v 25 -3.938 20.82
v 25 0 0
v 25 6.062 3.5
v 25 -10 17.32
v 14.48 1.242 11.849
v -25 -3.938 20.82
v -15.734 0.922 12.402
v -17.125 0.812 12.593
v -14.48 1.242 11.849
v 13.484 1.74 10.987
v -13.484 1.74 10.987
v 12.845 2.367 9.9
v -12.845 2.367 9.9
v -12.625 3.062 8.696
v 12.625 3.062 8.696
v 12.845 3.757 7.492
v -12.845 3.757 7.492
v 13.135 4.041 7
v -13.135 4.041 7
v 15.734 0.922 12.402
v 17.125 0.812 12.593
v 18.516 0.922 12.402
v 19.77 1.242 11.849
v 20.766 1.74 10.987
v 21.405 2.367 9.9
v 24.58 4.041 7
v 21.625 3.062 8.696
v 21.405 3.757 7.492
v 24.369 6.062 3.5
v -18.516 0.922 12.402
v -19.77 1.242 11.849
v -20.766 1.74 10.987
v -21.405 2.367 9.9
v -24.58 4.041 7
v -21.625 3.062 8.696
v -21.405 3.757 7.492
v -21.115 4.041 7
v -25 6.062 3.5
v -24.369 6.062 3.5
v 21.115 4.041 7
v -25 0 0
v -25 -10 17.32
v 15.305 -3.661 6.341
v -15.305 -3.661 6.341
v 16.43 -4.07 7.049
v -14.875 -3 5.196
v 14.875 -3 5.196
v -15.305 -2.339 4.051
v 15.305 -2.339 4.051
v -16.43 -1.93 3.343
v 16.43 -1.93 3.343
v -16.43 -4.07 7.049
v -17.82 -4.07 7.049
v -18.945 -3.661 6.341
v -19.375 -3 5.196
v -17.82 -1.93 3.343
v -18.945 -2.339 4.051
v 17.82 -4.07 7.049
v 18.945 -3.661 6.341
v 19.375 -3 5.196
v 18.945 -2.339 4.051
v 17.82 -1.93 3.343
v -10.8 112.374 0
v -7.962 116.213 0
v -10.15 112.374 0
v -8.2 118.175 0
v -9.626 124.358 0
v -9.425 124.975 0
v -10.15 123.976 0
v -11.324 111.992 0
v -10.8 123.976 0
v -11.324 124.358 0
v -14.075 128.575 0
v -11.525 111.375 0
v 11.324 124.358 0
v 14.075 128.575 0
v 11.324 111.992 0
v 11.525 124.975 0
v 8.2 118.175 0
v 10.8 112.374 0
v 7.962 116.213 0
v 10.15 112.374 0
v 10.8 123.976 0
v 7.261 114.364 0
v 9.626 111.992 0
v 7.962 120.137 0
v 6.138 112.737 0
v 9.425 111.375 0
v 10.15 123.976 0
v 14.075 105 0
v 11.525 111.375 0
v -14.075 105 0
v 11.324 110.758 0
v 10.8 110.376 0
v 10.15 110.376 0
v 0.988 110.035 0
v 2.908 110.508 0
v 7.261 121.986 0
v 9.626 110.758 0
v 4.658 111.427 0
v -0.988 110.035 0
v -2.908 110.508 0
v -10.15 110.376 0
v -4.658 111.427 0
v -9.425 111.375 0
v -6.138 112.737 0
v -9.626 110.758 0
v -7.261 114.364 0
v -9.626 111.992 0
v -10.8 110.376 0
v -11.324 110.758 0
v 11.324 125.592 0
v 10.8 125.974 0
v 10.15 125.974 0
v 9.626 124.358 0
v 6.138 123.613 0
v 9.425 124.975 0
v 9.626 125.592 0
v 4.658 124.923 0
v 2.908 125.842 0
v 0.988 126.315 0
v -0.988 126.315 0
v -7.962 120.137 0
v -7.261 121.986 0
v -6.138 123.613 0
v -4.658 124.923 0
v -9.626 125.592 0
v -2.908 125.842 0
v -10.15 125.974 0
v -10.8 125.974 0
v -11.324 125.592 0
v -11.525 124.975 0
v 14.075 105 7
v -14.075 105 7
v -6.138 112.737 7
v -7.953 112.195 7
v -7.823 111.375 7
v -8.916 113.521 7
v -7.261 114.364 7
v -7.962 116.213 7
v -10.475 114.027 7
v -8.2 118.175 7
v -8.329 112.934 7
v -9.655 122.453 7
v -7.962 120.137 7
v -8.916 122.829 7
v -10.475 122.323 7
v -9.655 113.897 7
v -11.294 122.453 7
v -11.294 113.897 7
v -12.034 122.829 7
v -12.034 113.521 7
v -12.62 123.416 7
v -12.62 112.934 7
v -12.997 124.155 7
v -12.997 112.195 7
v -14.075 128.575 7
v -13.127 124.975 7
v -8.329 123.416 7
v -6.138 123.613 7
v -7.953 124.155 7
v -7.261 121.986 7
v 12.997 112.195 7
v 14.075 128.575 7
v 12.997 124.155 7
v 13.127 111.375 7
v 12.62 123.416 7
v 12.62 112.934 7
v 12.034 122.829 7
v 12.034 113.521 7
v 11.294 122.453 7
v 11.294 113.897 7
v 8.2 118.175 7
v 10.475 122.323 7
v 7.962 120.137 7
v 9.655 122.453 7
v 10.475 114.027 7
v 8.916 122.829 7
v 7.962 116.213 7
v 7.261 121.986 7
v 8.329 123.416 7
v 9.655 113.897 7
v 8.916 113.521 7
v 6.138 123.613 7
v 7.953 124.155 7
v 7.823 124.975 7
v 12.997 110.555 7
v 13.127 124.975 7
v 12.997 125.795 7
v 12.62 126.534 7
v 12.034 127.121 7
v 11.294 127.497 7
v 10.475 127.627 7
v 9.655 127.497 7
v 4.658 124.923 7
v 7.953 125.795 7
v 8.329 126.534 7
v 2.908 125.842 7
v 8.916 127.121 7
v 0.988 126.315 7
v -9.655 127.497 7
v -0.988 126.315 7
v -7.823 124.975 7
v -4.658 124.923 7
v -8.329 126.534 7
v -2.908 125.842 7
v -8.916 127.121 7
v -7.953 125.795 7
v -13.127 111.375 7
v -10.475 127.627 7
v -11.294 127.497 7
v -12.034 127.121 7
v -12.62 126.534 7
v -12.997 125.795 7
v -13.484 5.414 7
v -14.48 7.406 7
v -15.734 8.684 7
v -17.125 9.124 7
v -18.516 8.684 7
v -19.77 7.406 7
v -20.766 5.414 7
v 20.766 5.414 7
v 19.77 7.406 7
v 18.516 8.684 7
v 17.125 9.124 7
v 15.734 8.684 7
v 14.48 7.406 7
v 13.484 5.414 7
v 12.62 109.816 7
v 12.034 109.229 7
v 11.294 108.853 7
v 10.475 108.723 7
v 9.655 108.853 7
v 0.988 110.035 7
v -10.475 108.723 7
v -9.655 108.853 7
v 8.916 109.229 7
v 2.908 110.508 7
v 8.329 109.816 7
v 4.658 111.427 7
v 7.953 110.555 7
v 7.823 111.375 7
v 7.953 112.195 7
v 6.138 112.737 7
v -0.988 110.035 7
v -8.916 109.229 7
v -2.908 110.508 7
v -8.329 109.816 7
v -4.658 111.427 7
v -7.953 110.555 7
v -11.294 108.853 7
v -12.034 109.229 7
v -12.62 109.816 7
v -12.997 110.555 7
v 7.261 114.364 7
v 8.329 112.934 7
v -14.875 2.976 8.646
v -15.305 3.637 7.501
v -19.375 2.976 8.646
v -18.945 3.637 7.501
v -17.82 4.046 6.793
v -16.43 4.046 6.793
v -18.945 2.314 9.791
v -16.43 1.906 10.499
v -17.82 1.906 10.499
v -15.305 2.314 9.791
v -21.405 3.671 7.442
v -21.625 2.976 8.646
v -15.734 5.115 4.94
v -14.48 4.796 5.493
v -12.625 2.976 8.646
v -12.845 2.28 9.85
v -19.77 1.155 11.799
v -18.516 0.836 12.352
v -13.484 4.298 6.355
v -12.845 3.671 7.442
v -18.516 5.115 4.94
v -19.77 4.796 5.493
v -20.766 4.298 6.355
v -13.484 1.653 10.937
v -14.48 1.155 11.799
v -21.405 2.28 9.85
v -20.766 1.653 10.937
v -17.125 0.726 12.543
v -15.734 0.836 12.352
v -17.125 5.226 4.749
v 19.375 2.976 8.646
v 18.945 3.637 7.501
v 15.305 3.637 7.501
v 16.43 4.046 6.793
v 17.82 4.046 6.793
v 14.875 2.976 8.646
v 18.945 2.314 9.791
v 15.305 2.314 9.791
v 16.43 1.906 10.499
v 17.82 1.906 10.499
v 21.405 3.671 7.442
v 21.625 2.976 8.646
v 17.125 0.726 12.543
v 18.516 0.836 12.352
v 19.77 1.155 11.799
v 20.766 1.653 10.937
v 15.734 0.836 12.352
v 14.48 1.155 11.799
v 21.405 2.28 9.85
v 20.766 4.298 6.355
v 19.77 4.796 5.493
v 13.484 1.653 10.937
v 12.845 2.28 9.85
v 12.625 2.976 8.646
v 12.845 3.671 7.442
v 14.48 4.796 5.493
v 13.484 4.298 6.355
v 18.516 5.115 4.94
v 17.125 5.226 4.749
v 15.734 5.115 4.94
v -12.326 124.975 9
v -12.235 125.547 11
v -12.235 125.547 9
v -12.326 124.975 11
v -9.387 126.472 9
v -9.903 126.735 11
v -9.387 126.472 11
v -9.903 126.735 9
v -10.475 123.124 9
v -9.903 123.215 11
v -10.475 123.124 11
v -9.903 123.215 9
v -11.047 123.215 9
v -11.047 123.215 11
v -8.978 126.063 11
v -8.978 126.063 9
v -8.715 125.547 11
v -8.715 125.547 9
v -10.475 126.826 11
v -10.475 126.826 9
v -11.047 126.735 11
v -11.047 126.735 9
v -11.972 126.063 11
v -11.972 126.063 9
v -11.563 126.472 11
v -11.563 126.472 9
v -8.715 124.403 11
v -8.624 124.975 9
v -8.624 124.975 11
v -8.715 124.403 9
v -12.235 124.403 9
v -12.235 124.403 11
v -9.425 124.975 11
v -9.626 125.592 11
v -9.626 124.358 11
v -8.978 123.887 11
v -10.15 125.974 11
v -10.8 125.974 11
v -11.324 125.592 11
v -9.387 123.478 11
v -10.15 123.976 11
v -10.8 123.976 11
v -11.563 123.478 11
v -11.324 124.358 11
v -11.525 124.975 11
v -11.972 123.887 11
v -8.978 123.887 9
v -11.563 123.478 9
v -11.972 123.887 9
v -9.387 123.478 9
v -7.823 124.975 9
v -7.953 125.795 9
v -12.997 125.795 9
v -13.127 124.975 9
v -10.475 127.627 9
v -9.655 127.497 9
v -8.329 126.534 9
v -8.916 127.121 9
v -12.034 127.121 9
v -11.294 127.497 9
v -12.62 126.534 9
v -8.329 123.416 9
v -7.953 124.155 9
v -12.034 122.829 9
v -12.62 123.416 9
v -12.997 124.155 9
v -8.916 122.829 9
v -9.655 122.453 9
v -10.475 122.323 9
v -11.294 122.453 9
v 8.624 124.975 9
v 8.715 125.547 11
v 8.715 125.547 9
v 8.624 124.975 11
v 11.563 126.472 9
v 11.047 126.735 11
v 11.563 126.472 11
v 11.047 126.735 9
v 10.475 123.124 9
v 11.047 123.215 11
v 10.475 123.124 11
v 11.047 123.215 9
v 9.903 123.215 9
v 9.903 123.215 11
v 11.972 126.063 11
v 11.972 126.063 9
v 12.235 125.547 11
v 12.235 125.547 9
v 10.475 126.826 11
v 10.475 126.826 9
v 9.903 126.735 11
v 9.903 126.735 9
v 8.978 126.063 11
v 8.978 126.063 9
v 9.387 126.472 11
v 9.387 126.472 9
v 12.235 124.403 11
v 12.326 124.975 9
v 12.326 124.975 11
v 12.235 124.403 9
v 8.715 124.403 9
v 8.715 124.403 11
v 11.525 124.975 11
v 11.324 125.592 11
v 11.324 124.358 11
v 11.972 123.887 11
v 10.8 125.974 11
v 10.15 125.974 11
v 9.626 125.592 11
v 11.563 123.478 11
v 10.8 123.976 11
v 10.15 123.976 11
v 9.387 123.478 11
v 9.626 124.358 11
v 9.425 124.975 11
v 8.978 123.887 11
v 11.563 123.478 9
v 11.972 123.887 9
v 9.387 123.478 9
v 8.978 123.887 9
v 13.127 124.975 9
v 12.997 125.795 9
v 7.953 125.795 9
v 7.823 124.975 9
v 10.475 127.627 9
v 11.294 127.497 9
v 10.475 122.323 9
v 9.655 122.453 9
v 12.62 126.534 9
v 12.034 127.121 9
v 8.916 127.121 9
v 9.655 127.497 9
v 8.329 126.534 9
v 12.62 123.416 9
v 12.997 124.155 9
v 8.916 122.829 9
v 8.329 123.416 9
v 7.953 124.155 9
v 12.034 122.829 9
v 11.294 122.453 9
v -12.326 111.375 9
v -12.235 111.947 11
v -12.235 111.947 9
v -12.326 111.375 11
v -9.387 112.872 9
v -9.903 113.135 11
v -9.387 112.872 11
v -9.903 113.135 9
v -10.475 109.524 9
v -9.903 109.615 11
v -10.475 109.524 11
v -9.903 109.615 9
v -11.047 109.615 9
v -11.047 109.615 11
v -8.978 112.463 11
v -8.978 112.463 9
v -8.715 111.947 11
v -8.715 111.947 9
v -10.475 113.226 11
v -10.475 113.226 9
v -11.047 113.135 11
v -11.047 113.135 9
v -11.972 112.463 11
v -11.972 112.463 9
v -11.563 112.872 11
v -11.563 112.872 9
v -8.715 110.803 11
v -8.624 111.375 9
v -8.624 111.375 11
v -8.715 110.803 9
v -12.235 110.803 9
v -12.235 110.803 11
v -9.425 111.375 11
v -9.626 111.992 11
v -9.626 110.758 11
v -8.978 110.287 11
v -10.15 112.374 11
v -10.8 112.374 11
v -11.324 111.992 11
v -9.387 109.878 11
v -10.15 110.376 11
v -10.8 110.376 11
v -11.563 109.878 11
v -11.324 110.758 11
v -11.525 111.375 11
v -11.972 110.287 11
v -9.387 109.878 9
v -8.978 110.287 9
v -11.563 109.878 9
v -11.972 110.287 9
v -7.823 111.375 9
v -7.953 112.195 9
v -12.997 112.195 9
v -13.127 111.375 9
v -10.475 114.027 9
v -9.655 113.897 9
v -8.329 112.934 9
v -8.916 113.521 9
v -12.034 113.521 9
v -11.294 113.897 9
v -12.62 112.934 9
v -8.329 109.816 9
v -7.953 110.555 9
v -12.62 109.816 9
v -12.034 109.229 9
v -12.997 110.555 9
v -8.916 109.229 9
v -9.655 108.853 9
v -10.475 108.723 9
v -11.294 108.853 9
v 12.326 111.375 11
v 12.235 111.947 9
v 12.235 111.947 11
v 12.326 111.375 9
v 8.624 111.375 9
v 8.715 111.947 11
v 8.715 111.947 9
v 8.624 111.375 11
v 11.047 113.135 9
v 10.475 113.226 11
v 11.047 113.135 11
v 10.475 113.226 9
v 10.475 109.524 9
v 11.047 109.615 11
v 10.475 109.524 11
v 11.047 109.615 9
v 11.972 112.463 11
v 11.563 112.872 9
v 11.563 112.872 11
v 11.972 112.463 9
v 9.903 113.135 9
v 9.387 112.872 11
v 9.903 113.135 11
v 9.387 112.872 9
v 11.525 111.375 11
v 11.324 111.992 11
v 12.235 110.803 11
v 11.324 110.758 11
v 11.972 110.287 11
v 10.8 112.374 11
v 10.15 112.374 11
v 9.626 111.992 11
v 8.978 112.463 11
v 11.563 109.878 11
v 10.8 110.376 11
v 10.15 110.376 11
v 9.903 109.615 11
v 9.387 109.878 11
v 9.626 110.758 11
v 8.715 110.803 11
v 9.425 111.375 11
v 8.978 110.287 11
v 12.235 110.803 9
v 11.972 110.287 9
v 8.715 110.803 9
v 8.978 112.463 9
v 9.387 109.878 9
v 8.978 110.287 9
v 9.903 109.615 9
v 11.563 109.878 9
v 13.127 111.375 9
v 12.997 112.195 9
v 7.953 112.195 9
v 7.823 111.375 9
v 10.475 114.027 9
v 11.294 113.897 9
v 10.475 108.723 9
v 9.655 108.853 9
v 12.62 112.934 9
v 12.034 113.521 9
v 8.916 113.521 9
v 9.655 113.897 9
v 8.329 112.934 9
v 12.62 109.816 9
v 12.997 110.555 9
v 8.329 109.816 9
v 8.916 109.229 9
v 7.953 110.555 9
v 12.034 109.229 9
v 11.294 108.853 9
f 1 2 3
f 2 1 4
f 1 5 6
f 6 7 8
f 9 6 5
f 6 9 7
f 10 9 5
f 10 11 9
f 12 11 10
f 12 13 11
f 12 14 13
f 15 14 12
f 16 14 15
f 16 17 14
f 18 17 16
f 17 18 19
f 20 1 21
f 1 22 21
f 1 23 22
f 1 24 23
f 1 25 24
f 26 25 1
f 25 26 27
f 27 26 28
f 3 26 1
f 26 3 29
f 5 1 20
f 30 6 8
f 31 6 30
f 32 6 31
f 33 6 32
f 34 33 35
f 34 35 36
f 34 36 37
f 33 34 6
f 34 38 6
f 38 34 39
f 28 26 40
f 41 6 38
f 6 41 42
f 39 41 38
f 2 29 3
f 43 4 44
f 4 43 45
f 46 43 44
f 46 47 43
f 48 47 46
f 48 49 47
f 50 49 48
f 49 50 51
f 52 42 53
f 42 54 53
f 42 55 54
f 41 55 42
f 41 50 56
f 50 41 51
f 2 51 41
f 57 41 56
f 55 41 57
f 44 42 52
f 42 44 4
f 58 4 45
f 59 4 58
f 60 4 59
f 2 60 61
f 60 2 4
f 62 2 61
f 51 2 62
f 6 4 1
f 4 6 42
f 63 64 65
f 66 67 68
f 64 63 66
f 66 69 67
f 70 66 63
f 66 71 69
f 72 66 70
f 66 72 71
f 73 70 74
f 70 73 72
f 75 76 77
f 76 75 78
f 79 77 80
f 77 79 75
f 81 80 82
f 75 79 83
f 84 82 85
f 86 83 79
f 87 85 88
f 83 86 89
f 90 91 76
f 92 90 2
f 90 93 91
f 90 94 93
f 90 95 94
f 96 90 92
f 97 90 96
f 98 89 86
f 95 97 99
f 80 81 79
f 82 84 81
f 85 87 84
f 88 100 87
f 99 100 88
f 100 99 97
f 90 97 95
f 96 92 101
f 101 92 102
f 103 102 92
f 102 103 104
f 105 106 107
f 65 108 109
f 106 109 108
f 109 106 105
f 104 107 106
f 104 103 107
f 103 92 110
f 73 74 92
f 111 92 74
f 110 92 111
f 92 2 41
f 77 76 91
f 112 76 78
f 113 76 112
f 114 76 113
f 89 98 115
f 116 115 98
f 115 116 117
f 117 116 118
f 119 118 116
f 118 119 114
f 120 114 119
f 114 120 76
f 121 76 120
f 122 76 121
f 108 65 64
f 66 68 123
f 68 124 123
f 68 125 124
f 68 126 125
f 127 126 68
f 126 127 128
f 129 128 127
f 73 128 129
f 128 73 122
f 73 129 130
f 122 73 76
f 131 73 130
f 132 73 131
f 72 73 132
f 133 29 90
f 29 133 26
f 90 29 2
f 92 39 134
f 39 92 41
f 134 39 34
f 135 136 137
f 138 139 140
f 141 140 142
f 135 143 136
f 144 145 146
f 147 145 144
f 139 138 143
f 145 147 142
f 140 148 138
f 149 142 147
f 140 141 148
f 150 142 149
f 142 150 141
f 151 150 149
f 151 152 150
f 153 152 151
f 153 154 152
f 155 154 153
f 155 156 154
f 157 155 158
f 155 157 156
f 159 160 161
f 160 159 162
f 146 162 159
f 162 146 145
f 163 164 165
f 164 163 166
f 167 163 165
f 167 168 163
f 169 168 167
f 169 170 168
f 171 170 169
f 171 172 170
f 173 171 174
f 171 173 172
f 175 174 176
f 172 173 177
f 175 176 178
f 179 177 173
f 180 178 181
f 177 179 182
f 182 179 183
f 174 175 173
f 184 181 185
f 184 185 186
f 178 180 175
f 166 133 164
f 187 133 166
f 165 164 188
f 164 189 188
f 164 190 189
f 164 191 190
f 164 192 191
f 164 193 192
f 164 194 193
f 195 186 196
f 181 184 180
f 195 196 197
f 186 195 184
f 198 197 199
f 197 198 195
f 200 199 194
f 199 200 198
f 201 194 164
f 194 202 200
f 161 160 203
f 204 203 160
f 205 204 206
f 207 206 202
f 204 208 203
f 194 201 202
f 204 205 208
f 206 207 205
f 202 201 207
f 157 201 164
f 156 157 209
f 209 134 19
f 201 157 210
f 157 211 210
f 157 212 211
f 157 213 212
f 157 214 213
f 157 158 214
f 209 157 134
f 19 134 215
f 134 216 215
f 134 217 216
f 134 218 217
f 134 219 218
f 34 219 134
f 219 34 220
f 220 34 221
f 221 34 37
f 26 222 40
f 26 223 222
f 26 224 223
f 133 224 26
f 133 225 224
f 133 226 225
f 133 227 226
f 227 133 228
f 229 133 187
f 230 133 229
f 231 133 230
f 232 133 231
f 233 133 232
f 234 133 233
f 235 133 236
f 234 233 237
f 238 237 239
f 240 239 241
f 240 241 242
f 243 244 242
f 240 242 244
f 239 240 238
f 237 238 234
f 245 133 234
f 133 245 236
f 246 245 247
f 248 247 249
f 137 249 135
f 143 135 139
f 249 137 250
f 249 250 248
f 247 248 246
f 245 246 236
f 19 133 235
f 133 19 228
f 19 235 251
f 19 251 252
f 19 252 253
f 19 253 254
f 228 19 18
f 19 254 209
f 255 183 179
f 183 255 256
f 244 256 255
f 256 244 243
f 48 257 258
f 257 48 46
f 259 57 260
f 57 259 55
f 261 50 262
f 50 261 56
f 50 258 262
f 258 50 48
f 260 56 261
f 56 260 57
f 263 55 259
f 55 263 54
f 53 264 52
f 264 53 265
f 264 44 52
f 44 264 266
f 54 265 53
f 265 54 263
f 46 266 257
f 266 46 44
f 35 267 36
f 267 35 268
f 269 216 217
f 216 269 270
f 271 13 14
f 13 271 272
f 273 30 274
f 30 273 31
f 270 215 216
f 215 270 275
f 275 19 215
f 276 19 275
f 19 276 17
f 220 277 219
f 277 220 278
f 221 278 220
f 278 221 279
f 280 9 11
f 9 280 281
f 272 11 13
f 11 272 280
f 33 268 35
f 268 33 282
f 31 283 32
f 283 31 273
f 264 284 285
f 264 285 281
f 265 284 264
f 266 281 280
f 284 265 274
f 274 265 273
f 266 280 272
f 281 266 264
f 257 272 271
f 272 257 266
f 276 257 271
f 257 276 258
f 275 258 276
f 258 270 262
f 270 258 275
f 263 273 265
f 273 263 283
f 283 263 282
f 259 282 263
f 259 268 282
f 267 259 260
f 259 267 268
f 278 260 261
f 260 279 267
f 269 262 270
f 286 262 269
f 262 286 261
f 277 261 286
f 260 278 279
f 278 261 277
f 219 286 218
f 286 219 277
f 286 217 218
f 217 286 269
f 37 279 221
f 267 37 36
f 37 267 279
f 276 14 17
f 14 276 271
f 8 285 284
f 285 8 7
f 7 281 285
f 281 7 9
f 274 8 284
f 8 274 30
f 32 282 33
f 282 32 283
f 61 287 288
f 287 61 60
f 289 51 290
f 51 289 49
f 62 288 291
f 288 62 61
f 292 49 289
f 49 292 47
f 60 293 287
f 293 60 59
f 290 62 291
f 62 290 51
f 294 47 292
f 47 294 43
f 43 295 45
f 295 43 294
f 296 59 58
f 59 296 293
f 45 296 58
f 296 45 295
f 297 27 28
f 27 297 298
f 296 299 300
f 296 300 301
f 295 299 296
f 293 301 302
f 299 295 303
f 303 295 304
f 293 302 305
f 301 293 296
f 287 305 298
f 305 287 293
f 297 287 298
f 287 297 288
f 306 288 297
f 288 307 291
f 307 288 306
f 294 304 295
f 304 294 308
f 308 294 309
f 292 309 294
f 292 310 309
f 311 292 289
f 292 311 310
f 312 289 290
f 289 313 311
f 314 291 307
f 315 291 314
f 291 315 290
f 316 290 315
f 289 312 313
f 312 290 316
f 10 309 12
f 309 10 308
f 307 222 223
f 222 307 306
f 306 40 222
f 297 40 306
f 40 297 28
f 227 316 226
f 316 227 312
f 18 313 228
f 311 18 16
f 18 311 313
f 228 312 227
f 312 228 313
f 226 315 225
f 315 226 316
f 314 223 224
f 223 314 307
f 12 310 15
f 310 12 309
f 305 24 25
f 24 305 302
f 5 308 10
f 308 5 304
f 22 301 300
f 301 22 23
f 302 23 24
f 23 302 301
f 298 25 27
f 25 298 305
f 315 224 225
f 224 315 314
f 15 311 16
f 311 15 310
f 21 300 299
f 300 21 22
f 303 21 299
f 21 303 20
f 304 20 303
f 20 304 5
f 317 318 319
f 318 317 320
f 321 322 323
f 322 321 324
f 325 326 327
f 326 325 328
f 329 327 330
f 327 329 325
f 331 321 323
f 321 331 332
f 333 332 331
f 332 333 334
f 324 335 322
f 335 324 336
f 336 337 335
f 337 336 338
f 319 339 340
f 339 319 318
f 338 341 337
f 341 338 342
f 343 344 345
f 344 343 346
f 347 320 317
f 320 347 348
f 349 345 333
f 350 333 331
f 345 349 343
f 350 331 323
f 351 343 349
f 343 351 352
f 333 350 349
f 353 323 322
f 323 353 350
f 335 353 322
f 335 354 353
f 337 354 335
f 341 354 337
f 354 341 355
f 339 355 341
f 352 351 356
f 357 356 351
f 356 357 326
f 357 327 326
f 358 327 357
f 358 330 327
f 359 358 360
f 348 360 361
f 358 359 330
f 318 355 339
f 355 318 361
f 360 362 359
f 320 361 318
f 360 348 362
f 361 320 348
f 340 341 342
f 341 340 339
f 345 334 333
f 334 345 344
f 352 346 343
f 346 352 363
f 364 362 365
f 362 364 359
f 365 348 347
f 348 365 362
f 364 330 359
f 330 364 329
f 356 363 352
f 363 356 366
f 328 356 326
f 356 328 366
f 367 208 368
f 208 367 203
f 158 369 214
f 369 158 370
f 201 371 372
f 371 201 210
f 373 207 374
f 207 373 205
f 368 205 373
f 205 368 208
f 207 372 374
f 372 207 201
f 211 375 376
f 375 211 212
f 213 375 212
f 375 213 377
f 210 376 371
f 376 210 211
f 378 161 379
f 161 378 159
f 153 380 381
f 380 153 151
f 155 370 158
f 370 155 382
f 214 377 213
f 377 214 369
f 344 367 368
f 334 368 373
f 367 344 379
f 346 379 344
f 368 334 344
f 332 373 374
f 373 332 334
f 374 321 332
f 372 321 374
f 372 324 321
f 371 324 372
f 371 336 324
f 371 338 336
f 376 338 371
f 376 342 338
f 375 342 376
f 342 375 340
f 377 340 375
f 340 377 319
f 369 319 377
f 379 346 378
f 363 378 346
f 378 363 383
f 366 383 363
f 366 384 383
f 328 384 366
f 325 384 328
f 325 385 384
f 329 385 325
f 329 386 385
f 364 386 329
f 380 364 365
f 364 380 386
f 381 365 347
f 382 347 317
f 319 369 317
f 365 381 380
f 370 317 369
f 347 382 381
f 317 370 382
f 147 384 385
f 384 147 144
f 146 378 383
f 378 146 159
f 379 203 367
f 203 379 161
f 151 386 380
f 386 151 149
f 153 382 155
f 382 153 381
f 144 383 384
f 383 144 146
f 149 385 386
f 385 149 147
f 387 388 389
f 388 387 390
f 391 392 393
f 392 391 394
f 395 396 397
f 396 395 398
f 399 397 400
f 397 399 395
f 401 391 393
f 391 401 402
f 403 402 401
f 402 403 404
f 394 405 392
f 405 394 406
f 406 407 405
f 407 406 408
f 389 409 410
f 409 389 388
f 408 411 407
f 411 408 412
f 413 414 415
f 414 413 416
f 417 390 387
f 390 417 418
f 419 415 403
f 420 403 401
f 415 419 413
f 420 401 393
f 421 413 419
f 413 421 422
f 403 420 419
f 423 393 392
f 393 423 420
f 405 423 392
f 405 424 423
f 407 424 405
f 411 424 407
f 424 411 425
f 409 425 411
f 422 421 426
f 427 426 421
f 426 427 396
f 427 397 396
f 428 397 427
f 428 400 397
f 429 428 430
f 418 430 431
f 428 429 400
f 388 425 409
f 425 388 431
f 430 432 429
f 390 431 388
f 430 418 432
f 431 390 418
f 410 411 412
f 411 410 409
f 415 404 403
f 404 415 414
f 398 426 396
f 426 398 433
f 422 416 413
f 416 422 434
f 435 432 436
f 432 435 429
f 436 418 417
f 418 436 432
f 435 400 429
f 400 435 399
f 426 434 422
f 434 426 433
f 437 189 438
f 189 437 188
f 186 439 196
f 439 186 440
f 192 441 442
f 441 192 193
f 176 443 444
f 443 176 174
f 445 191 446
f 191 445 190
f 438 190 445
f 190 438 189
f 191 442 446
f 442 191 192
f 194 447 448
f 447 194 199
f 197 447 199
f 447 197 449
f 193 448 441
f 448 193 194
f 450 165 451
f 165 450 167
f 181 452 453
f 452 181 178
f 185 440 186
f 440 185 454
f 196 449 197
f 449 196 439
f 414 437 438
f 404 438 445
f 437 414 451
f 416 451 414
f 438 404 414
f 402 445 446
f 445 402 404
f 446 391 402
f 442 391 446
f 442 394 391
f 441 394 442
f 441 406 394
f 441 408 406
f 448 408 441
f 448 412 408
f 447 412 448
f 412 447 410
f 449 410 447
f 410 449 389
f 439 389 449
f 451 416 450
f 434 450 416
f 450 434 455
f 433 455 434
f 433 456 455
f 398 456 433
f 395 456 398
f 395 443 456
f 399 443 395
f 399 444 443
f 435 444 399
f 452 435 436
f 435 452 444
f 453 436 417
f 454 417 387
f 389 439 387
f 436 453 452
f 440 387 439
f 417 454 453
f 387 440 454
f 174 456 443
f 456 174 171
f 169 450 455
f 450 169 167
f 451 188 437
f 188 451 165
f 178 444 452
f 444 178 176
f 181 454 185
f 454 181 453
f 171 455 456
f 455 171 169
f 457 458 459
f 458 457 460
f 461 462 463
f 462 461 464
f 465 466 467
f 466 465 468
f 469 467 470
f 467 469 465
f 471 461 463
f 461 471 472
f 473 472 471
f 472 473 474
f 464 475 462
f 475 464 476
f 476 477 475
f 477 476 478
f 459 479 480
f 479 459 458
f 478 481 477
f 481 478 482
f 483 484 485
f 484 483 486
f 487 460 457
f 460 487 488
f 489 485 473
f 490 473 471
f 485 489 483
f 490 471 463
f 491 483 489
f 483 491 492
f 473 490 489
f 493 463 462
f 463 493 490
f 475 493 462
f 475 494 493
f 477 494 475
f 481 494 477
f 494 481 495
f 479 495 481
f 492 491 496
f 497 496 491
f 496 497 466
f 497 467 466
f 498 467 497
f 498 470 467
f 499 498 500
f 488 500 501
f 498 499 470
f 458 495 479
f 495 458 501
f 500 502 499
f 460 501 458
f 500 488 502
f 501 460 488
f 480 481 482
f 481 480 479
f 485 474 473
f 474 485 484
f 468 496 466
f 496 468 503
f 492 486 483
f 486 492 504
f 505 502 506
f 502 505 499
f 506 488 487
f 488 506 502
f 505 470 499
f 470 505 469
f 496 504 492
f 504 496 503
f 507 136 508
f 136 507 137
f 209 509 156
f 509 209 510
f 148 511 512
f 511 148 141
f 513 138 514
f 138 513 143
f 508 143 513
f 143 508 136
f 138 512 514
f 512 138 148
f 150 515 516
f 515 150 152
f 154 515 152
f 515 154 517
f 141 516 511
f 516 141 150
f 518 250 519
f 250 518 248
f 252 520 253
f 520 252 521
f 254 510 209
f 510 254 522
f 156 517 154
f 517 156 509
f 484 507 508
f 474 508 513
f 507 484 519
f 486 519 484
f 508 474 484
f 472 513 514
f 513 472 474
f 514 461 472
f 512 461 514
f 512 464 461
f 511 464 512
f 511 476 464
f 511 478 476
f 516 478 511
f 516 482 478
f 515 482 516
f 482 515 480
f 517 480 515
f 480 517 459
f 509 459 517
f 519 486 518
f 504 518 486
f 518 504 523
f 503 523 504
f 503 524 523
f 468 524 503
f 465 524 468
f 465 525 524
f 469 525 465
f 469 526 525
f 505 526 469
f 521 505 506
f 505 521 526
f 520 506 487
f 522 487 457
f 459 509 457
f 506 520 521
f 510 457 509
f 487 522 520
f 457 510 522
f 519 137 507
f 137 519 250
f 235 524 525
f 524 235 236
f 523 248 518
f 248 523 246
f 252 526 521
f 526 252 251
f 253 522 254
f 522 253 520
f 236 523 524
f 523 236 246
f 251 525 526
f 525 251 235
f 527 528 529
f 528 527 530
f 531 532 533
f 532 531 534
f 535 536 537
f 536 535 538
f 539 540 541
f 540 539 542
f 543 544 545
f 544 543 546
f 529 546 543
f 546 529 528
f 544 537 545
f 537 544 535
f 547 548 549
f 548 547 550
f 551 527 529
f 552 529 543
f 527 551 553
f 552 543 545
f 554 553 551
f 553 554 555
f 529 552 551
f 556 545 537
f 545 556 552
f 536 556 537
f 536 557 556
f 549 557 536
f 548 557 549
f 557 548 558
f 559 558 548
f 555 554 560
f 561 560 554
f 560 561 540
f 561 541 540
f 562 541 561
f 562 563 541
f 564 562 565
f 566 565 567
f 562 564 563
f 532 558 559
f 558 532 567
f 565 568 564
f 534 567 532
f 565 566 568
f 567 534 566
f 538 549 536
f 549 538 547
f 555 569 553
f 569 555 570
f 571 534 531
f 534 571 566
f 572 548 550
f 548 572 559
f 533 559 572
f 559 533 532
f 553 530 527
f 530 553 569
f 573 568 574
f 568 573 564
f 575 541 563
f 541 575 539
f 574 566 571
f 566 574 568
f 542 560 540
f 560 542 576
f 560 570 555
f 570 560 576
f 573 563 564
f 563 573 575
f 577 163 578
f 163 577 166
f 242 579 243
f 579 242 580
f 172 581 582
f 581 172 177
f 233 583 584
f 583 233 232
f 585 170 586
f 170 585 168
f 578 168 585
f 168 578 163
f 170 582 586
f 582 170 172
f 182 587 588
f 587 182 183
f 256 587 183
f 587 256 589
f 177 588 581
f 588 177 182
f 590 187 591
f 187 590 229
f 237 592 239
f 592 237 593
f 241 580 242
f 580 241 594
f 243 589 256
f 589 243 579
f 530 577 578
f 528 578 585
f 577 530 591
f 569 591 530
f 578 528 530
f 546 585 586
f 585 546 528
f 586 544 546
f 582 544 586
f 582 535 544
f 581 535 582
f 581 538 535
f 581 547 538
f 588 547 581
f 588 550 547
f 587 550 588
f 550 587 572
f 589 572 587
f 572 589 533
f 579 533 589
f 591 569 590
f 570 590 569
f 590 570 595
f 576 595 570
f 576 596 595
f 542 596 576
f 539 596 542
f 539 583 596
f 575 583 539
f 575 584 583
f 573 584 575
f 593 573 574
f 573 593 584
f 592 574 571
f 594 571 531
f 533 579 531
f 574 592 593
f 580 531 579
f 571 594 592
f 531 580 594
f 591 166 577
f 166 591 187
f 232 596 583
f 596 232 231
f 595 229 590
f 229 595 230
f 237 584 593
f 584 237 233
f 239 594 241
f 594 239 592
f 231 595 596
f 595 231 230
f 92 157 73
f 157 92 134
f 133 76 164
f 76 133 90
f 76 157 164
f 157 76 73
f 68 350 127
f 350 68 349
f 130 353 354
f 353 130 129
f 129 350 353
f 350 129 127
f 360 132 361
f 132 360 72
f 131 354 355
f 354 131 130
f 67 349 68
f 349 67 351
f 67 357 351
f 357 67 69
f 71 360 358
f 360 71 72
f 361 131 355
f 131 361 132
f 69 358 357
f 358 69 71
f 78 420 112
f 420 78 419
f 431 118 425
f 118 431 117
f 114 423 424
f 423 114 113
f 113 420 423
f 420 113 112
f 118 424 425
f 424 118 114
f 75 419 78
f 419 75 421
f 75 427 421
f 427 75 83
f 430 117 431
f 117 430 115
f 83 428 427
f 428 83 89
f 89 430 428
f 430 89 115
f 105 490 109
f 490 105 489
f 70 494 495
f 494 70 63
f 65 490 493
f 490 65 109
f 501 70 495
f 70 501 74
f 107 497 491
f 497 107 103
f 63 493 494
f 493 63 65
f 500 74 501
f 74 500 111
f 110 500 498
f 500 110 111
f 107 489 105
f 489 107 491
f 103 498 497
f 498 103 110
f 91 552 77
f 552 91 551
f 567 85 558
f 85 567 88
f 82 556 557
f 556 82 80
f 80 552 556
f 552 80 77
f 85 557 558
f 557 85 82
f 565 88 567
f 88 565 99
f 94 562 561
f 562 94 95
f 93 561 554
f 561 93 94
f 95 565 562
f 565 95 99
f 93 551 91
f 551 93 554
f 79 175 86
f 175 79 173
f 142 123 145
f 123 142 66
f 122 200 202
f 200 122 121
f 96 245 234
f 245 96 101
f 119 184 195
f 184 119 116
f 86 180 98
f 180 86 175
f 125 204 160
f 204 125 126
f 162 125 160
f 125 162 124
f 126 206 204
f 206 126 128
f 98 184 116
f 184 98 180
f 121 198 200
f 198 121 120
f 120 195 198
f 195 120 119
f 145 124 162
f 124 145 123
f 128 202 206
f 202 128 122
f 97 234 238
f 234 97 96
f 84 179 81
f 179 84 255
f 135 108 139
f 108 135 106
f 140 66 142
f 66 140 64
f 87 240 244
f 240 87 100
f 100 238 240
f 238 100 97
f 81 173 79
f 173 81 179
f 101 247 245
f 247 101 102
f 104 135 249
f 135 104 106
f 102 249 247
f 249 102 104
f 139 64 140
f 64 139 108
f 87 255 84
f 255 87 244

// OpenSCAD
thickness = 7;
cam_border = 3;
wide_cam_width = 25.15;
wide_cam_height = 24.15;
wide_cam_mount = [
  [-wide_cam_width/2 + 2.1, wide_cam_height/2 - 2.1],
  [wide_cam_width/2 - 2.1, wide_cam_height/2 - 2.1],
  [-wide_cam_width/2 + 2.1, wide_cam_height/2 - 14.6 - 1.1],
  [wide_cam_width/2 - 2.1, wide_cam_height/2 - 14.6 - 1.1],
];
wide_cam_lens_diam = 16.4;
screw_diam = 2.1;
screw_wall_thickness = 0.801;  // must be a multiple of nozzle size 0.4
support_offset = 4;

module CameraMount() {
  difference() {
    union() {
      translate([-(cam_border + wide_cam_width)/2, -(cam_border + wide_cam_height)/2, 0])
        cube([cam_border + wide_cam_width, cam_border + wide_cam_height, thickness]);
      for (h = wide_cam_mount) {
        translate([h[0], h[1], thickness - 0.1]) {
          cylinder(d=screw_diam + 2*screw_wall_thickness, h=support_offset + 0.1, $fn=20);
          cylinder(d=screw_diam + 4*screw_wall_thickness, h=support_offset/2 + 0.1, $fn=20);
        }
      }
    }
    for (h = wide_cam_mount) {
      translate([h[0], h[1], -0.1]) {
        cylinder(d=screw_diam, h=thickness + 10, $fn=10);
      }
    }
    // hole for lens
    translate([0, wide_cam_height/2 - 8.9, -0.1])
      cylinder(d=wide_cam_lens_diam, h=thickness + 3);
  }
}

module BumperSpar(sparlen) {
  rotate([90, 0, 0]) rotate([0, 90, 0]) linear_extrude(height = 2)
    polygon(points=[
      [-1.72, 3.0],
      [sparlen, 3], [sparlen, -0.1], [0, -0.1], [-1.72, 3.0]]);
}

bb_len = 105;
module BumperBracket() {
  // 30.75 inner to inner
  // 3.5mm diameter holes (we will probably have to drill out)
  // 60 deg angle from vertical
  difference() {
    union() {
      rotate([-60, 0, 0]) {
        translate([-25, -20, 0])
          cube([50, 20, thickness]);
      }
      linear_extrude(height = thickness)
        polygon(points=[
            [-25, 0],
            [-(cam_border + wide_cam_width)/2, bb_len],
            [(cam_border + wide_cam_width)/2, bb_len],
            [25, 0], [-25, 0]]);
    }
    // translate([-12, 0, 1.0]) BumperSpar(bb_len - 5);
    // translate([10, 0, 1.0]) BumperSpar(bb_len - 5);
    rotate([-60, 0, 0]) {
      translate([-30.75/2 - 3.5/2, -6, -0.1])
        cylinder(d=4.5, h=thickness + 1, $fn=10);
      translate([-30.75/2 - 3.5/2, -6, thickness-0.1])
        cylinder(d=9, h=thickness + 1, $fn=20);
      translate([30.75/2 + 3.5/2, -6, -0.1])
        cylinder(d=4.5, h=thickness + 1, $fn=10);
      translate([30.75/2 + 3.5/2, -6, thickness-0.1])
        cylinder(d=9, h=thickness + 1, $fn=20);
    }
  }
}

BumperBracket();
translate([0, bb_len+10, 0]) CameraMount();
